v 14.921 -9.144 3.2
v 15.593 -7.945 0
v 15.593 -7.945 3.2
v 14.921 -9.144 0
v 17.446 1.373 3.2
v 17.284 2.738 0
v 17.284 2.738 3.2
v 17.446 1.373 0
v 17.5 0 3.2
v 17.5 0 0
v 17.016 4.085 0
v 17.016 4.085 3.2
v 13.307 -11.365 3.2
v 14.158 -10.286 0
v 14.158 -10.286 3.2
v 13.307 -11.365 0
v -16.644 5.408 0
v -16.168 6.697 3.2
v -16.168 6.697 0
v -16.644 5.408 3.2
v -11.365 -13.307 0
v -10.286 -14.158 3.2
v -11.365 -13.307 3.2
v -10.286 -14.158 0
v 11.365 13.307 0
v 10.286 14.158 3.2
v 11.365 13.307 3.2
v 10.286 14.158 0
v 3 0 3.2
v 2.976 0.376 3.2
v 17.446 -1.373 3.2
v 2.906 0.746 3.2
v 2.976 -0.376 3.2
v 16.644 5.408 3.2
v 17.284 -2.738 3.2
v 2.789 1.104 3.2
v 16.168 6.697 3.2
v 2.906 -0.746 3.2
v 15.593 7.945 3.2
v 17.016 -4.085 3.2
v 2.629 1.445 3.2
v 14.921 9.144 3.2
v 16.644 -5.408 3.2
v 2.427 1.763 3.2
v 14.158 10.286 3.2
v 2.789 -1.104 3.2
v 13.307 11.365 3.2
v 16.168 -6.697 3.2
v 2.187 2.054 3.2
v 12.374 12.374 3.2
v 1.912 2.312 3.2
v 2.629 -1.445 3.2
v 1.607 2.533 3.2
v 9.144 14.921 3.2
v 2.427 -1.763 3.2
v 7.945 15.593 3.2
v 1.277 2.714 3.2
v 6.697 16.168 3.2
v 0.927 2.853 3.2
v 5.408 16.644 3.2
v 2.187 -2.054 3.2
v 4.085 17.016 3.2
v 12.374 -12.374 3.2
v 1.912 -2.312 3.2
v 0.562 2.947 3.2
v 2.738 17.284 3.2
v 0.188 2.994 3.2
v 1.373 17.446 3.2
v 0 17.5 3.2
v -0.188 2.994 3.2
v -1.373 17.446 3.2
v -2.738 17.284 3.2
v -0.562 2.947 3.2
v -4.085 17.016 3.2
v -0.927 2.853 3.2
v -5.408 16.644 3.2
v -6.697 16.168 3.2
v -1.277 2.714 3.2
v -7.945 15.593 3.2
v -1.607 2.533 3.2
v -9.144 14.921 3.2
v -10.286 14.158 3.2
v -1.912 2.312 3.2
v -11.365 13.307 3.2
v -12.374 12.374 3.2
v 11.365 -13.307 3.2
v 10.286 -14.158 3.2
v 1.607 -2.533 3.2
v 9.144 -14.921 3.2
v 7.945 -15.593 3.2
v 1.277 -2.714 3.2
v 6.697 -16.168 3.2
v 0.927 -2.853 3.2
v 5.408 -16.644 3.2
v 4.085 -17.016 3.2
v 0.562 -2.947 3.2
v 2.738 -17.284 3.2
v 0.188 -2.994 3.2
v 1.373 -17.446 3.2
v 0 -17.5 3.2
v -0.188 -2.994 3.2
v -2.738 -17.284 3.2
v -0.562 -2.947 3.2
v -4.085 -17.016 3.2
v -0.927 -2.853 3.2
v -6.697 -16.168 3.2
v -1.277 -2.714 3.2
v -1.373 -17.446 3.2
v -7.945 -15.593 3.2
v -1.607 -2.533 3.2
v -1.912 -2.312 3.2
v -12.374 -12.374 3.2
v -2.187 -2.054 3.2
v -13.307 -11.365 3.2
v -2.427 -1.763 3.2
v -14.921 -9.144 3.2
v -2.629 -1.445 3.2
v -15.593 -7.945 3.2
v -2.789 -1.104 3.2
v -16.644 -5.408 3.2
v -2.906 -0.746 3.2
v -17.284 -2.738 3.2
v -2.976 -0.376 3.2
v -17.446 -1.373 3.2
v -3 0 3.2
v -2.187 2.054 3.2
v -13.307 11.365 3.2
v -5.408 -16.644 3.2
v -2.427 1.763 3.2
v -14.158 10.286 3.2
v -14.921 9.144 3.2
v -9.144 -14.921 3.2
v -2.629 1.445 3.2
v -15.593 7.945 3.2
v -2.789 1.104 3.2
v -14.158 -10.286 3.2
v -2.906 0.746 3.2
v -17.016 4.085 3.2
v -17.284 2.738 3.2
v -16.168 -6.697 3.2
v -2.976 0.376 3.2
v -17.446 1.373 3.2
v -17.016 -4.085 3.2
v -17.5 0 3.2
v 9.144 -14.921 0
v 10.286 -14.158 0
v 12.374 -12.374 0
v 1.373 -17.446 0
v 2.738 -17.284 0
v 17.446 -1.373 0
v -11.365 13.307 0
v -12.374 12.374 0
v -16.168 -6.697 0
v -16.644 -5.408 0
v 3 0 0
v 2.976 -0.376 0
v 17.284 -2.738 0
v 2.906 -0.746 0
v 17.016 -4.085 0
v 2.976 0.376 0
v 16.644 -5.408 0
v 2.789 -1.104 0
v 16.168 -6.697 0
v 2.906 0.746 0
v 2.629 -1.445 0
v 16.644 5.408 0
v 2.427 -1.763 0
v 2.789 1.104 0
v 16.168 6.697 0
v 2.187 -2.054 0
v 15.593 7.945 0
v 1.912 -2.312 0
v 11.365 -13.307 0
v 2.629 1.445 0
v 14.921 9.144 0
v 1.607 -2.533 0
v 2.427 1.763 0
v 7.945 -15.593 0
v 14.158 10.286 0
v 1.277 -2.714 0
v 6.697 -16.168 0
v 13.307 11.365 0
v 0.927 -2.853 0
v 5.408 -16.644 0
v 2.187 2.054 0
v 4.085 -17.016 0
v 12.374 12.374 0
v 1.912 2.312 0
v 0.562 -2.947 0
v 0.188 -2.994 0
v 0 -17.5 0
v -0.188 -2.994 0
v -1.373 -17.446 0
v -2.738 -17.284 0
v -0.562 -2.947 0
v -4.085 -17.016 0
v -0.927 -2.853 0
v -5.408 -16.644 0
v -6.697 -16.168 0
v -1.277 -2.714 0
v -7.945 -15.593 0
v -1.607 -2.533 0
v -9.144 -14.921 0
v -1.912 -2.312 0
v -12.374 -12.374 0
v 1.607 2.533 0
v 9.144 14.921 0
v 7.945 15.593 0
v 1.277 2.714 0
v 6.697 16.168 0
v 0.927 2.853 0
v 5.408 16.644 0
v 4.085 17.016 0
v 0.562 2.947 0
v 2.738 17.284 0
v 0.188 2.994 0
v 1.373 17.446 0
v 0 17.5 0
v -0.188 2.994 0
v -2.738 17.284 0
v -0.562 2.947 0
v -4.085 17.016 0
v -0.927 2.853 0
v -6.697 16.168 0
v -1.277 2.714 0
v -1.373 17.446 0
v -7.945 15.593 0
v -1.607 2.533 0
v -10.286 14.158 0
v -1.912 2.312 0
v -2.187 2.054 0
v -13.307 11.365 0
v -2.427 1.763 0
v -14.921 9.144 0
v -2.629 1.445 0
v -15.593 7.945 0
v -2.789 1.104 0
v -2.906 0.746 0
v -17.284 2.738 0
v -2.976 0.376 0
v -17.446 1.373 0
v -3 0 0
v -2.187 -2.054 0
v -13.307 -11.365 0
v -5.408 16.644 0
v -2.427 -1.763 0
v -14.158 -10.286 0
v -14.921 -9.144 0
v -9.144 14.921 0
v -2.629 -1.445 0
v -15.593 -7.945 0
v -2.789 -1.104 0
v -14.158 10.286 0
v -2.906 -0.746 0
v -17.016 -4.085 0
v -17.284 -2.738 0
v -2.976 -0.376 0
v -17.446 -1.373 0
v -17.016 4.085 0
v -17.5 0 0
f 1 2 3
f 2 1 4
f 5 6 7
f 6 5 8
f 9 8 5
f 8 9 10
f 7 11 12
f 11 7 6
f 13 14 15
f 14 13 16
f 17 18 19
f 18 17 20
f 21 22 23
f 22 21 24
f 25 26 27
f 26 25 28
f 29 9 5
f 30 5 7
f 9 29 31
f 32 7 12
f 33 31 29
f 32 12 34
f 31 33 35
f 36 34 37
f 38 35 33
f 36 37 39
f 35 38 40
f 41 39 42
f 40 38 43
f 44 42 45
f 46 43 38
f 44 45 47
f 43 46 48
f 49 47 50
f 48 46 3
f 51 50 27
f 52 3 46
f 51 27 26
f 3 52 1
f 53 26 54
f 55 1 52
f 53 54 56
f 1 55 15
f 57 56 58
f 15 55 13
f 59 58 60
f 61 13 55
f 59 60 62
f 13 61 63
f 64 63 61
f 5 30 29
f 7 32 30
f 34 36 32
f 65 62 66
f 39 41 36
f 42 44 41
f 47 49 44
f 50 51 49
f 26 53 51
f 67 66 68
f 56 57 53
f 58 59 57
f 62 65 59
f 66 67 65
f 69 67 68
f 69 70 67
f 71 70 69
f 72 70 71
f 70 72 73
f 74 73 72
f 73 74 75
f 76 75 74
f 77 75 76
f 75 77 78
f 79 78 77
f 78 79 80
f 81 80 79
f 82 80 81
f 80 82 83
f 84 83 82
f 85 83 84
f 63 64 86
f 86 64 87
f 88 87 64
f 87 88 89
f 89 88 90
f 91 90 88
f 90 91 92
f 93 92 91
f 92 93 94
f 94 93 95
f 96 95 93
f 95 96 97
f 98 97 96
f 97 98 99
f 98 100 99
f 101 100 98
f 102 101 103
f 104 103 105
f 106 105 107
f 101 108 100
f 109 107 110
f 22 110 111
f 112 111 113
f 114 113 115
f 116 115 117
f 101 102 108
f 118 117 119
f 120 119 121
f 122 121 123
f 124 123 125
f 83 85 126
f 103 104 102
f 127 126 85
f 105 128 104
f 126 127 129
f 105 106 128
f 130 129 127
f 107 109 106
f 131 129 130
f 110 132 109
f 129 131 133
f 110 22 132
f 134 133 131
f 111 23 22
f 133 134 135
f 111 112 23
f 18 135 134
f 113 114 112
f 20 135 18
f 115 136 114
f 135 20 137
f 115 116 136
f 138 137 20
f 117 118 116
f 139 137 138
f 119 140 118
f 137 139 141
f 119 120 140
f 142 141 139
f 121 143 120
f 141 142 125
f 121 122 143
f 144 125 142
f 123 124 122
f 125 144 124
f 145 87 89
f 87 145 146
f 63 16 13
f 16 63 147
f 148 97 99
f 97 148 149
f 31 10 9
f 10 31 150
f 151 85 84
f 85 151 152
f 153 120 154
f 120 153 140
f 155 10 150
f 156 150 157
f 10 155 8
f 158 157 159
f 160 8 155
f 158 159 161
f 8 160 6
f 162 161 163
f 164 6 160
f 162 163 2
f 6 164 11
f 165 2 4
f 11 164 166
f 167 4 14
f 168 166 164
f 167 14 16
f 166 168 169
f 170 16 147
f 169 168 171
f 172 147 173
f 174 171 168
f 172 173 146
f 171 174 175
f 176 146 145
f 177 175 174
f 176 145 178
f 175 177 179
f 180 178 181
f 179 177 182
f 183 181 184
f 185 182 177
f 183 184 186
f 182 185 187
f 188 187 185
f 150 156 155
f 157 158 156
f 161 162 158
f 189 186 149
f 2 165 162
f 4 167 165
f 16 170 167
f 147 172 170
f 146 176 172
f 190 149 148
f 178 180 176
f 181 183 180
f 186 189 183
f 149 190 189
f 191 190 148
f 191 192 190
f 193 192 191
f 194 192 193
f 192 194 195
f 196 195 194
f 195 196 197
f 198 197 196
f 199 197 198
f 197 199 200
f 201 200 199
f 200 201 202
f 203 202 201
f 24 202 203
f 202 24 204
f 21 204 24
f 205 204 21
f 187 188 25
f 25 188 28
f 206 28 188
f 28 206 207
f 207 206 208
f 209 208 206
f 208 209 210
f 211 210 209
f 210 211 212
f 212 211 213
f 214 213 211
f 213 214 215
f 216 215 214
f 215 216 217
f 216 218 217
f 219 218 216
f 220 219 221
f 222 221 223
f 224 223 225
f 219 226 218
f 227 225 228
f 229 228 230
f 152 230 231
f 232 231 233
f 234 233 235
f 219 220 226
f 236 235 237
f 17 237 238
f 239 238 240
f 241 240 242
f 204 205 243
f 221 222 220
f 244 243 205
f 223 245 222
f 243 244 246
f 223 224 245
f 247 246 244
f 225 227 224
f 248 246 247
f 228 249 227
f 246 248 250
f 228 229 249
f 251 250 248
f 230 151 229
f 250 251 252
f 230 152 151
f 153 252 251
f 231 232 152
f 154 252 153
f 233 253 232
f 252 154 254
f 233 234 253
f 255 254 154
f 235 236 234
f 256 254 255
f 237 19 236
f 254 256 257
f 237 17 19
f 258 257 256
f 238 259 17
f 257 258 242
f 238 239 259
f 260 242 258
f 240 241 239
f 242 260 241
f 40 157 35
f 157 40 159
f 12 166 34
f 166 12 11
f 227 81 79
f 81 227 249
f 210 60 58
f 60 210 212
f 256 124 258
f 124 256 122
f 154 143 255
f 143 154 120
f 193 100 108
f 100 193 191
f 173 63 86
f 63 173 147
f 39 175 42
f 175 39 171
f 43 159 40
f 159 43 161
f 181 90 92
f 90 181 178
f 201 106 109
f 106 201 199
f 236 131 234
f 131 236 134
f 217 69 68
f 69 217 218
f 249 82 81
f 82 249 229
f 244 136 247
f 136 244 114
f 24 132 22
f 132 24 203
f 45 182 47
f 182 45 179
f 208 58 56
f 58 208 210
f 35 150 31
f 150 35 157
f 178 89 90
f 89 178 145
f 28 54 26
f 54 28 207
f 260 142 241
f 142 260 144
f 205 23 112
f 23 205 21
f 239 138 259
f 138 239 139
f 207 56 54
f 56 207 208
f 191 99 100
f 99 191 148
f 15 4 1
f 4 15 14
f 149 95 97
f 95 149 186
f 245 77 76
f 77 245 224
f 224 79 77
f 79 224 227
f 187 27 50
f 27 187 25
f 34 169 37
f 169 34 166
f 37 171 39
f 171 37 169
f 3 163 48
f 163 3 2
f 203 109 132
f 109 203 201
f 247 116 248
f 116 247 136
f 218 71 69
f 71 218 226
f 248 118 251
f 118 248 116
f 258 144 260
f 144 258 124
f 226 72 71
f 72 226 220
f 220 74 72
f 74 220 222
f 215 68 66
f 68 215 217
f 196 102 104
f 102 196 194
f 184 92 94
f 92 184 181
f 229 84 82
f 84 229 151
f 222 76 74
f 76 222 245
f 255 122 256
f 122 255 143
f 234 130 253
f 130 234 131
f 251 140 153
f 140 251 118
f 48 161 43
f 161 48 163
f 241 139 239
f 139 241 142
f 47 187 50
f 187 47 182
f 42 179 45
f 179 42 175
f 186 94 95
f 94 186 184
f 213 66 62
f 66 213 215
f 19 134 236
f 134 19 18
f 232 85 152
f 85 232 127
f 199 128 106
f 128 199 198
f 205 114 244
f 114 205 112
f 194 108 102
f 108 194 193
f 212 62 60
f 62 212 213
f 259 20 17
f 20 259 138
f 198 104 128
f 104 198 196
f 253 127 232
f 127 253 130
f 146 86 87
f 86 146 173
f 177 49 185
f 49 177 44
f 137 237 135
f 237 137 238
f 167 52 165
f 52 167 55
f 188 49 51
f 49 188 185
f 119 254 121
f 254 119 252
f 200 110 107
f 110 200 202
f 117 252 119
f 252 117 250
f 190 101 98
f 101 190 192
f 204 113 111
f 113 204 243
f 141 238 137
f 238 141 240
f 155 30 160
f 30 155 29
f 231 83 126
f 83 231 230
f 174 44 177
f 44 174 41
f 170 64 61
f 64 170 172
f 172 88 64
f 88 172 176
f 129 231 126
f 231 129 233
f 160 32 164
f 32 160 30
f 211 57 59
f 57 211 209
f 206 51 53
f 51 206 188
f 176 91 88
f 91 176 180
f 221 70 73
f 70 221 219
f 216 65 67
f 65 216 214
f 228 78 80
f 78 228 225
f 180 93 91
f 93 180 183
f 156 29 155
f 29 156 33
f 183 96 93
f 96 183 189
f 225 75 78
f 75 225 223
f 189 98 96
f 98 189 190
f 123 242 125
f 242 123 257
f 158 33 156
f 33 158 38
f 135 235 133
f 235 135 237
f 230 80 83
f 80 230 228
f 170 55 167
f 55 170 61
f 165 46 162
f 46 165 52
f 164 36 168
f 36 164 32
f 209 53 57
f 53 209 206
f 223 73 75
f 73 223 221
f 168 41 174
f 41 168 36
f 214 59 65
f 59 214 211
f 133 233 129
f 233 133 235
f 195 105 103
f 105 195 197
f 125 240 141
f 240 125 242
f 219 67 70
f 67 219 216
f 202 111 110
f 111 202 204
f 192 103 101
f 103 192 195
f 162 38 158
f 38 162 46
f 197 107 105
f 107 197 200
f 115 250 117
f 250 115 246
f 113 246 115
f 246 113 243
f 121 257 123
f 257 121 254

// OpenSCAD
module washer(id,od,thickness){
	difference(){
		cylinder(r=od/2,h=thickness, $fn=80);
		translate([0,0,-0.1*thickness])
			cylinder(r=id/2,h=1.2*thickness, $fn=50);
	}
}

washer(6, 35, 3.2);
